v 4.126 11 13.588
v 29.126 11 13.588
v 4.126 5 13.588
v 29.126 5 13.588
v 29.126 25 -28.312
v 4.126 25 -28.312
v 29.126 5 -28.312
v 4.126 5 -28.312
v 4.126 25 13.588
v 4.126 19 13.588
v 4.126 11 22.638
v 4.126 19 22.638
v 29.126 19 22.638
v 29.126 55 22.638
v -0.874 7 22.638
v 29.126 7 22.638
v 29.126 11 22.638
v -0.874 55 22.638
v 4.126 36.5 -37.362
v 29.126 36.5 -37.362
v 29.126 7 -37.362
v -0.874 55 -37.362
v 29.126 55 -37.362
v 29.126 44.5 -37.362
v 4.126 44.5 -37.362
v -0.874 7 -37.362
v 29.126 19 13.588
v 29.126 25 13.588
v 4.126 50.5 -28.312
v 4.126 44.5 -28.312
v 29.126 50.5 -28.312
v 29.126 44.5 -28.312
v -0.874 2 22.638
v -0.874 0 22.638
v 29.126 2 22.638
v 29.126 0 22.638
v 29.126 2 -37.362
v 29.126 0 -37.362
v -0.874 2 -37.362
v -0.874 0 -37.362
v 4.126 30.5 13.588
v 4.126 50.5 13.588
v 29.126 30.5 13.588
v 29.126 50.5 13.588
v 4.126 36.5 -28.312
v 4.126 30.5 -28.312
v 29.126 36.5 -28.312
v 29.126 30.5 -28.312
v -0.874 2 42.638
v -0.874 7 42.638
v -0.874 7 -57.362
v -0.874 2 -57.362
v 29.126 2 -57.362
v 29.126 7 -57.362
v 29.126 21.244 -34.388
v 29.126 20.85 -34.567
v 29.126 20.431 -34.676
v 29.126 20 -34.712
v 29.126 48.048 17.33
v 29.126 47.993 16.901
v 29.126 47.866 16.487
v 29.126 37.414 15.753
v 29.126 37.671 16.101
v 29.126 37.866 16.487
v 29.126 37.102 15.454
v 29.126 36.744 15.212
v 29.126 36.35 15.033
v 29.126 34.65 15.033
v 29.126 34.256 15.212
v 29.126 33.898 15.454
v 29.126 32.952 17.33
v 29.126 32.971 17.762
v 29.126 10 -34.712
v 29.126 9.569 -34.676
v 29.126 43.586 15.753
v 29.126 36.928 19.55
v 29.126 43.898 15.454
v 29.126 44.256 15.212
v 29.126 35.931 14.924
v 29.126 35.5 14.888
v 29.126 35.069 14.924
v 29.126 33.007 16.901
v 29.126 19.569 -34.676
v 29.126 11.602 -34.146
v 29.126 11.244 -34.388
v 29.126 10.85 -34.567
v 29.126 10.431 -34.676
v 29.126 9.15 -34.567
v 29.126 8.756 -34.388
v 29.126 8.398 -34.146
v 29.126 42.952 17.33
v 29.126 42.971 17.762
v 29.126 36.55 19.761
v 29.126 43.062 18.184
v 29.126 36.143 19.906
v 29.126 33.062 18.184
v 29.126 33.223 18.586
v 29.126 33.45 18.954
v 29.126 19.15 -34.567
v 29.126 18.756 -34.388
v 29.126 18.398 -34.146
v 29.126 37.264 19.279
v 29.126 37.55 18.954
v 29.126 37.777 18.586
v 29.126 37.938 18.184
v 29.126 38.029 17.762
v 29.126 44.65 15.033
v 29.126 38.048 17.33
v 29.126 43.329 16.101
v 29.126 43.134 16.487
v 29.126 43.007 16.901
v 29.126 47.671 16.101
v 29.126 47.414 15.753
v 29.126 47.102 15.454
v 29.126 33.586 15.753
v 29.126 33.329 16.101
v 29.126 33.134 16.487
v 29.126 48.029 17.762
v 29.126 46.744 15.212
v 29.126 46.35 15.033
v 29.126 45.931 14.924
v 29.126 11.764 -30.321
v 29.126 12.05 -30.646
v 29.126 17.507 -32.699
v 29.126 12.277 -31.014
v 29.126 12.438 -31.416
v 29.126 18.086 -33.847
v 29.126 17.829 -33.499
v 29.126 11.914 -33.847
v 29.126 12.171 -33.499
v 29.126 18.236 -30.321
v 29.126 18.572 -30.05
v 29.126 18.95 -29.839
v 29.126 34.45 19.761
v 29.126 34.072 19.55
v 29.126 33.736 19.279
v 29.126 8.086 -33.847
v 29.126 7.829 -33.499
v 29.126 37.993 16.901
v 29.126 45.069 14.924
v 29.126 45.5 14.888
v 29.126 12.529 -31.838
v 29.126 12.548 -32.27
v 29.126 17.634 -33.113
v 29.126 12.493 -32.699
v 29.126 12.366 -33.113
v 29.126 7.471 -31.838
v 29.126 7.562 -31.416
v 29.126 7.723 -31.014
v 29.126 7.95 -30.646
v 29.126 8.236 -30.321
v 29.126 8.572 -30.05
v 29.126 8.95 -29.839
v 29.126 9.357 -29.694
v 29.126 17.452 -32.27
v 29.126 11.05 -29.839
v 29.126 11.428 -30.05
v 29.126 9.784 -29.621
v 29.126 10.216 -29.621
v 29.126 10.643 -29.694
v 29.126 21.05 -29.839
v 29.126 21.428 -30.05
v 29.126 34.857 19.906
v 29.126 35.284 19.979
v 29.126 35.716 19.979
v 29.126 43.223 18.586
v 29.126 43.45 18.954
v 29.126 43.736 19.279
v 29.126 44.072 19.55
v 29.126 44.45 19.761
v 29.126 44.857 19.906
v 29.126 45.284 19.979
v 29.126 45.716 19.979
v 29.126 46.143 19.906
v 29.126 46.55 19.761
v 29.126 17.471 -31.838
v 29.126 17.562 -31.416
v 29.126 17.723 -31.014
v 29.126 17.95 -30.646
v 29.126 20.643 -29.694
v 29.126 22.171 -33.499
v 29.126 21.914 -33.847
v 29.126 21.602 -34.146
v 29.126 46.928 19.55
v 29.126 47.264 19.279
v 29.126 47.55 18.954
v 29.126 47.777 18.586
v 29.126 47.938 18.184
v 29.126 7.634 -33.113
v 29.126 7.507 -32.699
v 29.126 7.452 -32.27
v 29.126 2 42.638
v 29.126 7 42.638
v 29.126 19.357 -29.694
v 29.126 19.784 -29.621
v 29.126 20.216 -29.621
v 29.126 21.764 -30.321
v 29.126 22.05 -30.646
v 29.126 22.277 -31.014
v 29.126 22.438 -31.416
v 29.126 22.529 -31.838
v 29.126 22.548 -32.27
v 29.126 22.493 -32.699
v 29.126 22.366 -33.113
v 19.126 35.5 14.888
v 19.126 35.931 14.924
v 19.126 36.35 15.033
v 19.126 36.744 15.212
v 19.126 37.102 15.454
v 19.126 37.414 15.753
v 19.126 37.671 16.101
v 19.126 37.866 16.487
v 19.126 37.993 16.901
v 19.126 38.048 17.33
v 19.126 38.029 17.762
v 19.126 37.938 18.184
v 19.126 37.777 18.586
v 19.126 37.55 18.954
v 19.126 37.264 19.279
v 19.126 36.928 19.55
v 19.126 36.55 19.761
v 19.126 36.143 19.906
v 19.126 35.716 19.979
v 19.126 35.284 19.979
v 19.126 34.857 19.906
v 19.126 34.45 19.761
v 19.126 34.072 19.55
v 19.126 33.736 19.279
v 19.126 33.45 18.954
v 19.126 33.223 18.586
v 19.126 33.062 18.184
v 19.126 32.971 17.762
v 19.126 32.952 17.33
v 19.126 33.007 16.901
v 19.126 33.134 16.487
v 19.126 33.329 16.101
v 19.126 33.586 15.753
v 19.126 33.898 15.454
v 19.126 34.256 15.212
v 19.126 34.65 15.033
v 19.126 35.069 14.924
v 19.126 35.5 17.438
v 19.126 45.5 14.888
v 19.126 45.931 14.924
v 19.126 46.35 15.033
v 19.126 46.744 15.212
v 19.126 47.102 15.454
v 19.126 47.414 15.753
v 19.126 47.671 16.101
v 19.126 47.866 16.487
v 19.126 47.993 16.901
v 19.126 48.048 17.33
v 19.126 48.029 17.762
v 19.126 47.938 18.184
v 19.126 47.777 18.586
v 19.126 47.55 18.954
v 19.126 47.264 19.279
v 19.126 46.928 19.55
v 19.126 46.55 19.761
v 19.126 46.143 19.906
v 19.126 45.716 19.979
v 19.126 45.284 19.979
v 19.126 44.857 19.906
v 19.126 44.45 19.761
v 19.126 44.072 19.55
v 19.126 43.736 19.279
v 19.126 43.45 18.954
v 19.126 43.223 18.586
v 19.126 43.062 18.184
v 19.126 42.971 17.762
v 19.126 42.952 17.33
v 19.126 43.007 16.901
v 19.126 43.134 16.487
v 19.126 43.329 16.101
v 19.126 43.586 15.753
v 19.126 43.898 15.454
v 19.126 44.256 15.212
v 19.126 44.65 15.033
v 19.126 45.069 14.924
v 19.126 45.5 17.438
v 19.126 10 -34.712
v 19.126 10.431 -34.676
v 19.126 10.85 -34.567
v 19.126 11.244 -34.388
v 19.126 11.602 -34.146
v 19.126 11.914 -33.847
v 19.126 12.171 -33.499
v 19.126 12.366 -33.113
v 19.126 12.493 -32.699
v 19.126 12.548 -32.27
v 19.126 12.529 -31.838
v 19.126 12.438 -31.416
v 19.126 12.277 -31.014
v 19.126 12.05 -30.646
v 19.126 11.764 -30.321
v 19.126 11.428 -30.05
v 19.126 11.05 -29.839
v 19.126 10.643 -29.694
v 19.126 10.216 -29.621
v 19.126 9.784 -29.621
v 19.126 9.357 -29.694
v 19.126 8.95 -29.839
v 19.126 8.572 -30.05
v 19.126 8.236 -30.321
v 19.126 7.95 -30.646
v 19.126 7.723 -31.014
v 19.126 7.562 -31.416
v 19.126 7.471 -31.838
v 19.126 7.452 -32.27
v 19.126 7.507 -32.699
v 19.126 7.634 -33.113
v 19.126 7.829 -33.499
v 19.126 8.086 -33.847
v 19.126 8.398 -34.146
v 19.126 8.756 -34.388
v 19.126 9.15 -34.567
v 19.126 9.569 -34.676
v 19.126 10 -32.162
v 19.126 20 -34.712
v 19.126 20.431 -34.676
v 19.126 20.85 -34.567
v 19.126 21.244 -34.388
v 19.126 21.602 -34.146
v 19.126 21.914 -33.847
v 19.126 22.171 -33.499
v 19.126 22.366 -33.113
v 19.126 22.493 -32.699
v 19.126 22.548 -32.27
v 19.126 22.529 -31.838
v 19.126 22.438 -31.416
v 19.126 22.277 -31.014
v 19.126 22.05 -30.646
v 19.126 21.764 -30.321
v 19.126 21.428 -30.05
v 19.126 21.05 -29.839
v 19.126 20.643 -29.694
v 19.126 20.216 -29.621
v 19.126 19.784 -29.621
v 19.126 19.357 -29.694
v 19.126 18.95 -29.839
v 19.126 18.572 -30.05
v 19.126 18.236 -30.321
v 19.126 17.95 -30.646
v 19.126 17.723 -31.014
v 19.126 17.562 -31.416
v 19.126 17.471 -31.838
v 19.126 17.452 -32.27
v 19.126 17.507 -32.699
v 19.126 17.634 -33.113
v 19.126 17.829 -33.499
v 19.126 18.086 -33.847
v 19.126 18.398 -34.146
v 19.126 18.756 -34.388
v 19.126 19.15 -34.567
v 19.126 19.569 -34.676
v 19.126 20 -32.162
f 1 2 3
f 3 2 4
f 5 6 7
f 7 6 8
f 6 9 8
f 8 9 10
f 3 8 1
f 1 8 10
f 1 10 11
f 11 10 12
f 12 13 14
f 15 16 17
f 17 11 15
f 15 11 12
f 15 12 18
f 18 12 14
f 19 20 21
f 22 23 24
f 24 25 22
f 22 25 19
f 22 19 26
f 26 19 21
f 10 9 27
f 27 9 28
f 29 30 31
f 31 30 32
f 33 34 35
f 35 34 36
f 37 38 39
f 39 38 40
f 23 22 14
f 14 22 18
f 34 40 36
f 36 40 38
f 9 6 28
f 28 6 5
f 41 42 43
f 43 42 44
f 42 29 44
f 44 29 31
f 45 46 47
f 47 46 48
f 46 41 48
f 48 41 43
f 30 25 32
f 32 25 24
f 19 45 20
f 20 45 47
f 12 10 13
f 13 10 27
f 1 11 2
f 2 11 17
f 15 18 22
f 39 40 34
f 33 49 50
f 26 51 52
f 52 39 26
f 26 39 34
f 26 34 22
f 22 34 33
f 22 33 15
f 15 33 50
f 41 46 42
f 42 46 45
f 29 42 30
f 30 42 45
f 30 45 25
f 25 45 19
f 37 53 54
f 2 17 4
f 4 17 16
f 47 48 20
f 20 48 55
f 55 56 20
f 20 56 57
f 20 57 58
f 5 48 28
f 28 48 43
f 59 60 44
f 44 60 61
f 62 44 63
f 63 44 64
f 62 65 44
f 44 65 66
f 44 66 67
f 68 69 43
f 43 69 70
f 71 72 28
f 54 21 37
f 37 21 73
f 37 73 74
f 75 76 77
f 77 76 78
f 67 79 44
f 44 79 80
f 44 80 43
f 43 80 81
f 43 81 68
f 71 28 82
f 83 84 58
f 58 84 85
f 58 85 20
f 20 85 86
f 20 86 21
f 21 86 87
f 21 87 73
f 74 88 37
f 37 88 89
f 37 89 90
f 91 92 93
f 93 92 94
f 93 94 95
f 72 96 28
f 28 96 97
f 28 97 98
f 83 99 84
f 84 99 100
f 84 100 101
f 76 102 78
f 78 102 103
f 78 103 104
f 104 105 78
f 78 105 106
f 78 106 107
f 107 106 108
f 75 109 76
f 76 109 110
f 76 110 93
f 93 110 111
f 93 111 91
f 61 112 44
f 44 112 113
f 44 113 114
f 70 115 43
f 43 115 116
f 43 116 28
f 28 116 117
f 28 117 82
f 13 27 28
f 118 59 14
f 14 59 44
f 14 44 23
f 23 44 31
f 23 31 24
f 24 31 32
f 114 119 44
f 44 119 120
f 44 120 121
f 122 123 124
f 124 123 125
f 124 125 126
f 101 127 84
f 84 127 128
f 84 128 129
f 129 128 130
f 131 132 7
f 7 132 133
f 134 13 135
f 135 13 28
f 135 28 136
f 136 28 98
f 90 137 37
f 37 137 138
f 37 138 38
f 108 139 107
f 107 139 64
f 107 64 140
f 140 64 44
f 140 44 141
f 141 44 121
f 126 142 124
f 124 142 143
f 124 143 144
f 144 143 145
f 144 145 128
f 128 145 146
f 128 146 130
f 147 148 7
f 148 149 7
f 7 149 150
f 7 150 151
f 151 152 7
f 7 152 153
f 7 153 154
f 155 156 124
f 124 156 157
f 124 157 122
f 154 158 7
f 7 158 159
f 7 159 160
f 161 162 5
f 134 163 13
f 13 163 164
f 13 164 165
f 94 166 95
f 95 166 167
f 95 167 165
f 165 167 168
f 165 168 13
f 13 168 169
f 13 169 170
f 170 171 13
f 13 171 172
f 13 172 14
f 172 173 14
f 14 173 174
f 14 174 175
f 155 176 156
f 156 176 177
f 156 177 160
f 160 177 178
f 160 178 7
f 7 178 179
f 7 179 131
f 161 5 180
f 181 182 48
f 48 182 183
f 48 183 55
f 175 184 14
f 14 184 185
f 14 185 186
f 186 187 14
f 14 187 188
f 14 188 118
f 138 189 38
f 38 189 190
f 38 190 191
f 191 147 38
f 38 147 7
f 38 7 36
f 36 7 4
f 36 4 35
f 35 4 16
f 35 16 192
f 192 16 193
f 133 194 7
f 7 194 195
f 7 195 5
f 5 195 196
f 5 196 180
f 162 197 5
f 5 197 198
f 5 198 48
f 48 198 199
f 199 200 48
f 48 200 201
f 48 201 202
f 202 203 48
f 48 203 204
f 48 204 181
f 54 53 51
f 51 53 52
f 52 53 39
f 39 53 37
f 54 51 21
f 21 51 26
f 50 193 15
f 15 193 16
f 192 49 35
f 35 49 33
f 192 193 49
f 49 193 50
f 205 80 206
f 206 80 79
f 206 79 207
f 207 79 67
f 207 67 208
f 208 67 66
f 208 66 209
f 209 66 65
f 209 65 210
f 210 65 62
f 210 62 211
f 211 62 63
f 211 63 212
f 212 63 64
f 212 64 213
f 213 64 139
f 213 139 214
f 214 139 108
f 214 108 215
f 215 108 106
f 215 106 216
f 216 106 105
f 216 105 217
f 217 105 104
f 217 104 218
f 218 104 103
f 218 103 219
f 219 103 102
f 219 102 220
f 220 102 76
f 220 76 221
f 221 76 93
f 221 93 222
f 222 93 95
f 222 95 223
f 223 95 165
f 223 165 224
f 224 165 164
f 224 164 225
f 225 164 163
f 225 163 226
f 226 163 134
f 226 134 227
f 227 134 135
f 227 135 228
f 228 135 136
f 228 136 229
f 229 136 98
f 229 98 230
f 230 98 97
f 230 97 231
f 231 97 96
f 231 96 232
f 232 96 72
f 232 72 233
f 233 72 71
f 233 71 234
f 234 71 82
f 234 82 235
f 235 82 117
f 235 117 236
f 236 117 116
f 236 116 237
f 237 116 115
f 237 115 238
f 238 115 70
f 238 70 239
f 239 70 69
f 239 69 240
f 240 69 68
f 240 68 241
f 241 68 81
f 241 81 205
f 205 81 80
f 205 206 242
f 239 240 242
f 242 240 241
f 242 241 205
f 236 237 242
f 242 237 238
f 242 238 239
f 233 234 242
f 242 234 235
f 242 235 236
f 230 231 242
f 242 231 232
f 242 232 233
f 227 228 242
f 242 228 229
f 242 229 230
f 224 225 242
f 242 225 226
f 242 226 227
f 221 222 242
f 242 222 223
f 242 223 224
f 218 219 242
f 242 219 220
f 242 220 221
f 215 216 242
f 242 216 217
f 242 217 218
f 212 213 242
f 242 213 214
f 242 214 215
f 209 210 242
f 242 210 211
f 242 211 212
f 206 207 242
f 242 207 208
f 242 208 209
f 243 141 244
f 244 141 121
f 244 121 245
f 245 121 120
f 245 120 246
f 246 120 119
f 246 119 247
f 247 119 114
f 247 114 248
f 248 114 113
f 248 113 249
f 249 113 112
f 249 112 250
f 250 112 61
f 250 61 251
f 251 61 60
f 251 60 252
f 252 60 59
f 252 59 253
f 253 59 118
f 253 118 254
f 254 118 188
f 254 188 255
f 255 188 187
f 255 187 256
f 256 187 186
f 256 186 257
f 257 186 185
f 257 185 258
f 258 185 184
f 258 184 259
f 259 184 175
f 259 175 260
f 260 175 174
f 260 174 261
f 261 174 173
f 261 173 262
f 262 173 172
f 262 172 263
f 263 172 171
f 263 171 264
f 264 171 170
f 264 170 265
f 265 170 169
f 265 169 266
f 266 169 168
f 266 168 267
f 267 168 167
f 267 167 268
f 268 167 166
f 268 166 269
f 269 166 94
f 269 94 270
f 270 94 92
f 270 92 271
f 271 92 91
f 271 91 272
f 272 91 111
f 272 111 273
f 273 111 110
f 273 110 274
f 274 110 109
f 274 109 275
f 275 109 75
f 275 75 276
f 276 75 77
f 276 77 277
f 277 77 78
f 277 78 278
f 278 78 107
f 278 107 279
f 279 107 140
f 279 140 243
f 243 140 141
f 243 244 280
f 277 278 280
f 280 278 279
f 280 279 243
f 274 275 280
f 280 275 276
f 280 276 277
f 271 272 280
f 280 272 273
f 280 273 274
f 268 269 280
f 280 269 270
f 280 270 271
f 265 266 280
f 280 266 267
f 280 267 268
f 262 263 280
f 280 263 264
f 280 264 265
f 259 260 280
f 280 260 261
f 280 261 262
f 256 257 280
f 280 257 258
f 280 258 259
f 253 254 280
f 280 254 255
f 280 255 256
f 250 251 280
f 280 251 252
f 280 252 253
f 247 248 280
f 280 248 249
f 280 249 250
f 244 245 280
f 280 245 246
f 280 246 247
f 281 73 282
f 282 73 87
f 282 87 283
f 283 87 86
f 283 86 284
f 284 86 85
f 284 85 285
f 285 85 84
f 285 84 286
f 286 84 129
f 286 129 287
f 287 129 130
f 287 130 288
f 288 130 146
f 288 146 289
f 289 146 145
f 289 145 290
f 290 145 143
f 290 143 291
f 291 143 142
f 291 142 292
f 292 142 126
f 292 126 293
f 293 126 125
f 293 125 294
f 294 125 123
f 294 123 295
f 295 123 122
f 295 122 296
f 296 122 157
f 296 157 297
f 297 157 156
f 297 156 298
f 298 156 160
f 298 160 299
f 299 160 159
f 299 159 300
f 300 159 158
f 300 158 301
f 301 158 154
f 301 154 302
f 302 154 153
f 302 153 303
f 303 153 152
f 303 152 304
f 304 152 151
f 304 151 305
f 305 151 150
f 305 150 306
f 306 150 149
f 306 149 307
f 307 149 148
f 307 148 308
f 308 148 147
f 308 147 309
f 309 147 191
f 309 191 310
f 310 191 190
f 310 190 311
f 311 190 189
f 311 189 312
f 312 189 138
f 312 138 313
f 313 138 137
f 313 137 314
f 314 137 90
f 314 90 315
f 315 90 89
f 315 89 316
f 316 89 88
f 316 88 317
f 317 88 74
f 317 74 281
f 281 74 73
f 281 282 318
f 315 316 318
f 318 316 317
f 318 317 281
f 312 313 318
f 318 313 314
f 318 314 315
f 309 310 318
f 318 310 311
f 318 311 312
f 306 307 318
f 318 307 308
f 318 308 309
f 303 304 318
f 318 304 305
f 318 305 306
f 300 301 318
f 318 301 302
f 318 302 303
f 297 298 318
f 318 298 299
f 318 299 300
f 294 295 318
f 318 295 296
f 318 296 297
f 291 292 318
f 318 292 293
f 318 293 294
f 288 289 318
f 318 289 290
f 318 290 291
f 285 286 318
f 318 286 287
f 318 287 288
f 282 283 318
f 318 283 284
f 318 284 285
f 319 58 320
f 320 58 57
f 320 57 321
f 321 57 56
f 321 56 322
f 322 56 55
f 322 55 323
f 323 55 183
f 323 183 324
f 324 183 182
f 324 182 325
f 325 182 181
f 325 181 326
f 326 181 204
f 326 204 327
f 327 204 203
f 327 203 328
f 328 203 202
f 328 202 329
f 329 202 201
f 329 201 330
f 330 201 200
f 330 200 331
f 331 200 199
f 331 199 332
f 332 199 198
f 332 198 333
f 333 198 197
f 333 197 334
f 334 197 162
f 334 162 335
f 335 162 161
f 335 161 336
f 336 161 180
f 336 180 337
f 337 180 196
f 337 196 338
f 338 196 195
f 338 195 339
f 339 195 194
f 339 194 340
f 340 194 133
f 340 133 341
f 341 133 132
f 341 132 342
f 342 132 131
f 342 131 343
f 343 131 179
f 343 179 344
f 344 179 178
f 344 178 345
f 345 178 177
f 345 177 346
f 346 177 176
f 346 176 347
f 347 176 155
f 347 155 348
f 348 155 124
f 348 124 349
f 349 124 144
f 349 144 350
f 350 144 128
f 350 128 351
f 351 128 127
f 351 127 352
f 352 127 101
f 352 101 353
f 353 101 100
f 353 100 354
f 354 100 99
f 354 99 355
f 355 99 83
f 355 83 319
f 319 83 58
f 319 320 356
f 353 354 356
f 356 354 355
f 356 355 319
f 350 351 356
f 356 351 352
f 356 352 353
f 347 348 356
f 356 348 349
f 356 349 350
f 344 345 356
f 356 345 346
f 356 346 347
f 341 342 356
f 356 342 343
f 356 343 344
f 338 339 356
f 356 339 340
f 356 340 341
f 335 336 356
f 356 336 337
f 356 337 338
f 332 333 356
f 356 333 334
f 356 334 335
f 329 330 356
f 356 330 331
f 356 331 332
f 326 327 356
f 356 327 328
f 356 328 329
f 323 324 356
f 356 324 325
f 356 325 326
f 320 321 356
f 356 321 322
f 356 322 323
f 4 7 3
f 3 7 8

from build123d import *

# Parameters (mm, degrees)
SKETCH1_W                 = 43
SKETCH1_H                 = 60
BOSS_EXTRUDE1_DEPTH       = 55
SKETCH2_W                 = 41.9
SKETCH2_H                 = 20
CUT_EXTRUDE1_DEPTH        = 38
SKETCH3_W                 = 9.05
SKETCH3_H                 = 8
CUT_EXTRUDE2_DEPTH        = 38
SKETCH4_W                 = 60
SKETCH4_H                 = 55
CUT_EXTRUDE3_DEPTH        = 13
BOSS_EXTRUDE5_START       = -0.874015748
BOSS_EXTRUDE5_OUTLINE_W   = 2
BOSS_EXTRUDE5_OUTLINE_H   = 41.9
BOSS_EXTRUDE5_OUTLINE_W_2 = 5
BOSS_EXTRUDE5_OUTLINE_H_2 = 20
BOSS_EXTRUDE5_DEPTH       = 30
SKETCH12_R                = 2.55
CUT_EXTRUDE4_DEPTH        = 10
SKETCH13_R                = 2.55
CUT_EXTRUDE5_DEPTH        = 10
SKETCH15_W                = 41.9
SKETCH15_H                = 5
CUT_EXTRUDE7_DEPTH        = 25
SKETCH16_W                = 41.9
SKETCH16_H                = 3
BOSS_EXTRUDE6_DEPTH       = 25


# Read off the part's stored shape, not the designer's step: Boss-Extrude5
with BuildPart() as part:
    # Sketch1 → Boss-Extrude1 (new body)
    with BuildSketch(Plane(origin=(0, 0, 0), x_dir=(1, 0, 0), z_dir=(0, 1, 0))):
        with Locations((20.625984252, 7.362204724)):
            Rectangle(SKETCH1_W, SKETCH1_H)
    extrude(amount=BOSS_EXTRUDE1_DEPTH)

    # Sketch2 → Cut-Extrude1 (cut)
    with BuildSketch(Plane(origin=(42.125984252, 0, 0), x_dir=(0, 0, -1), z_dir=(1, 0, 0))):
        with Locations((7.362204724, 40.5)):
            Rectangle(SKETCH2_W, SKETCH2_H)
        with Locations((7.362204724, 15)):
            Rectangle(SKETCH2_W, SKETCH2_H)
    extrude(amount=-CUT_EXTRUDE1_DEPTH, mode=Mode.SUBTRACT)

    # Sketch3 → Cut-Extrude2 (cut)
    with BuildSketch(Plane(origin=(42.125984252, 0, 0), x_dir=(0, 0, -1), z_dir=(1, 0, 0))):
        with Locations((-18.112795276, 15)):
            Rectangle(SKETCH3_W, SKETCH3_H)
        with Locations((32.837204724, 40.5)):
            Rectangle(SKETCH3_W, SKETCH3_H)
    extrude(amount=-CUT_EXTRUDE2_DEPTH, mode=Mode.SUBTRACT)

    # Sketch4 → Cut-Extrude3 (cut)
    with BuildSketch(Plane(origin=(42.125984252, 0, 0), x_dir=(0, 0, -1), z_dir=(1, 0, 0))):
        with Locations((7.362204724, 27.5)):
            Rectangle(SKETCH4_W, SKETCH4_H)
    extrude(amount=-CUT_EXTRUDE3_DEPTH, mode=Mode.SUBTRACT)

    # Boss-Extrude5 outline → Boss-Extrude5 (add)
    with BuildSketch(Plane.YZ.offset(BOSS_EXTRUDE5_START)):
        with Locations((6, -7.362204724)):
            Rectangle(BOSS_EXTRUDE5_OUTLINE_W, BOSS_EXTRUDE5_OUTLINE_H)
        with Locations((4.5, -47.362204724)):
            Rectangle(BOSS_EXTRUDE5_OUTLINE_W_2, BOSS_EXTRUDE5_OUTLINE_H_2)
        with Locations((4.5, 32.637795276)):
            Rectangle(BOSS_EXTRUDE5_OUTLINE_W_2, BOSS_EXTRUDE5_OUTLINE_H_2)
    extrude(amount=BOSS_EXTRUDE5_DEPTH)

    # Sketch12 → Cut-Extrude4 (cut)
    with BuildSketch(Plane(origin=(29.125984252, 0, 0), x_dir=(0, 0, -1), z_dir=(1, 0, 0))):
        with Locations((-17.437795276, 45.5)):
            Circle(SKETCH12_R)
        with Locations((-17.437795276, 35.5)):
            Circle(SKETCH12_R)
    extrude(amount=-CUT_EXTRUDE4_DEPTH, mode=Mode.SUBTRACT)

    # Sketch13 → Cut-Extrude5 (cut)
    with BuildSketch(Plane(origin=(29.125984252, 0, 0), x_dir=(0, 0, -1), z_dir=(1, 0, 0))):
        with Locations((32.162204724, 20)):
            Circle(SKETCH13_R)
        with Locations((32.162204724, 10)):
            Circle(SKETCH13_R)
    extrude(amount=-CUT_EXTRUDE5_DEPTH, mode=Mode.SUBTRACT)

    # Sketch15 → Cut-Extrude7 (cut)
    with BuildSketch(Plane(origin=(29.125984252, 0, 0), x_dir=(0, 0, -1), z_dir=(1, 0, 0))):
        with Locations((7.362204724, 4.5)):
            Rectangle(SKETCH15_W, SKETCH15_H)
    extrude(amount=-CUT_EXTRUDE7_DEPTH, mode=Mode.SUBTRACT)

    # Sketch16 → Boss-Extrude6 (add)
    with BuildSketch(Plane(origin=(4.125984252, 0, 0), x_dir=(0, 0, -1), z_dir=(1, 0, 0))):
        with Locations((7.362204724, 3.5)):
            Rectangle(SKETCH16_W, SKETCH16_H)
    extrude(amount=BOSS_EXTRUDE6_DEPTH)


solid = part.part
